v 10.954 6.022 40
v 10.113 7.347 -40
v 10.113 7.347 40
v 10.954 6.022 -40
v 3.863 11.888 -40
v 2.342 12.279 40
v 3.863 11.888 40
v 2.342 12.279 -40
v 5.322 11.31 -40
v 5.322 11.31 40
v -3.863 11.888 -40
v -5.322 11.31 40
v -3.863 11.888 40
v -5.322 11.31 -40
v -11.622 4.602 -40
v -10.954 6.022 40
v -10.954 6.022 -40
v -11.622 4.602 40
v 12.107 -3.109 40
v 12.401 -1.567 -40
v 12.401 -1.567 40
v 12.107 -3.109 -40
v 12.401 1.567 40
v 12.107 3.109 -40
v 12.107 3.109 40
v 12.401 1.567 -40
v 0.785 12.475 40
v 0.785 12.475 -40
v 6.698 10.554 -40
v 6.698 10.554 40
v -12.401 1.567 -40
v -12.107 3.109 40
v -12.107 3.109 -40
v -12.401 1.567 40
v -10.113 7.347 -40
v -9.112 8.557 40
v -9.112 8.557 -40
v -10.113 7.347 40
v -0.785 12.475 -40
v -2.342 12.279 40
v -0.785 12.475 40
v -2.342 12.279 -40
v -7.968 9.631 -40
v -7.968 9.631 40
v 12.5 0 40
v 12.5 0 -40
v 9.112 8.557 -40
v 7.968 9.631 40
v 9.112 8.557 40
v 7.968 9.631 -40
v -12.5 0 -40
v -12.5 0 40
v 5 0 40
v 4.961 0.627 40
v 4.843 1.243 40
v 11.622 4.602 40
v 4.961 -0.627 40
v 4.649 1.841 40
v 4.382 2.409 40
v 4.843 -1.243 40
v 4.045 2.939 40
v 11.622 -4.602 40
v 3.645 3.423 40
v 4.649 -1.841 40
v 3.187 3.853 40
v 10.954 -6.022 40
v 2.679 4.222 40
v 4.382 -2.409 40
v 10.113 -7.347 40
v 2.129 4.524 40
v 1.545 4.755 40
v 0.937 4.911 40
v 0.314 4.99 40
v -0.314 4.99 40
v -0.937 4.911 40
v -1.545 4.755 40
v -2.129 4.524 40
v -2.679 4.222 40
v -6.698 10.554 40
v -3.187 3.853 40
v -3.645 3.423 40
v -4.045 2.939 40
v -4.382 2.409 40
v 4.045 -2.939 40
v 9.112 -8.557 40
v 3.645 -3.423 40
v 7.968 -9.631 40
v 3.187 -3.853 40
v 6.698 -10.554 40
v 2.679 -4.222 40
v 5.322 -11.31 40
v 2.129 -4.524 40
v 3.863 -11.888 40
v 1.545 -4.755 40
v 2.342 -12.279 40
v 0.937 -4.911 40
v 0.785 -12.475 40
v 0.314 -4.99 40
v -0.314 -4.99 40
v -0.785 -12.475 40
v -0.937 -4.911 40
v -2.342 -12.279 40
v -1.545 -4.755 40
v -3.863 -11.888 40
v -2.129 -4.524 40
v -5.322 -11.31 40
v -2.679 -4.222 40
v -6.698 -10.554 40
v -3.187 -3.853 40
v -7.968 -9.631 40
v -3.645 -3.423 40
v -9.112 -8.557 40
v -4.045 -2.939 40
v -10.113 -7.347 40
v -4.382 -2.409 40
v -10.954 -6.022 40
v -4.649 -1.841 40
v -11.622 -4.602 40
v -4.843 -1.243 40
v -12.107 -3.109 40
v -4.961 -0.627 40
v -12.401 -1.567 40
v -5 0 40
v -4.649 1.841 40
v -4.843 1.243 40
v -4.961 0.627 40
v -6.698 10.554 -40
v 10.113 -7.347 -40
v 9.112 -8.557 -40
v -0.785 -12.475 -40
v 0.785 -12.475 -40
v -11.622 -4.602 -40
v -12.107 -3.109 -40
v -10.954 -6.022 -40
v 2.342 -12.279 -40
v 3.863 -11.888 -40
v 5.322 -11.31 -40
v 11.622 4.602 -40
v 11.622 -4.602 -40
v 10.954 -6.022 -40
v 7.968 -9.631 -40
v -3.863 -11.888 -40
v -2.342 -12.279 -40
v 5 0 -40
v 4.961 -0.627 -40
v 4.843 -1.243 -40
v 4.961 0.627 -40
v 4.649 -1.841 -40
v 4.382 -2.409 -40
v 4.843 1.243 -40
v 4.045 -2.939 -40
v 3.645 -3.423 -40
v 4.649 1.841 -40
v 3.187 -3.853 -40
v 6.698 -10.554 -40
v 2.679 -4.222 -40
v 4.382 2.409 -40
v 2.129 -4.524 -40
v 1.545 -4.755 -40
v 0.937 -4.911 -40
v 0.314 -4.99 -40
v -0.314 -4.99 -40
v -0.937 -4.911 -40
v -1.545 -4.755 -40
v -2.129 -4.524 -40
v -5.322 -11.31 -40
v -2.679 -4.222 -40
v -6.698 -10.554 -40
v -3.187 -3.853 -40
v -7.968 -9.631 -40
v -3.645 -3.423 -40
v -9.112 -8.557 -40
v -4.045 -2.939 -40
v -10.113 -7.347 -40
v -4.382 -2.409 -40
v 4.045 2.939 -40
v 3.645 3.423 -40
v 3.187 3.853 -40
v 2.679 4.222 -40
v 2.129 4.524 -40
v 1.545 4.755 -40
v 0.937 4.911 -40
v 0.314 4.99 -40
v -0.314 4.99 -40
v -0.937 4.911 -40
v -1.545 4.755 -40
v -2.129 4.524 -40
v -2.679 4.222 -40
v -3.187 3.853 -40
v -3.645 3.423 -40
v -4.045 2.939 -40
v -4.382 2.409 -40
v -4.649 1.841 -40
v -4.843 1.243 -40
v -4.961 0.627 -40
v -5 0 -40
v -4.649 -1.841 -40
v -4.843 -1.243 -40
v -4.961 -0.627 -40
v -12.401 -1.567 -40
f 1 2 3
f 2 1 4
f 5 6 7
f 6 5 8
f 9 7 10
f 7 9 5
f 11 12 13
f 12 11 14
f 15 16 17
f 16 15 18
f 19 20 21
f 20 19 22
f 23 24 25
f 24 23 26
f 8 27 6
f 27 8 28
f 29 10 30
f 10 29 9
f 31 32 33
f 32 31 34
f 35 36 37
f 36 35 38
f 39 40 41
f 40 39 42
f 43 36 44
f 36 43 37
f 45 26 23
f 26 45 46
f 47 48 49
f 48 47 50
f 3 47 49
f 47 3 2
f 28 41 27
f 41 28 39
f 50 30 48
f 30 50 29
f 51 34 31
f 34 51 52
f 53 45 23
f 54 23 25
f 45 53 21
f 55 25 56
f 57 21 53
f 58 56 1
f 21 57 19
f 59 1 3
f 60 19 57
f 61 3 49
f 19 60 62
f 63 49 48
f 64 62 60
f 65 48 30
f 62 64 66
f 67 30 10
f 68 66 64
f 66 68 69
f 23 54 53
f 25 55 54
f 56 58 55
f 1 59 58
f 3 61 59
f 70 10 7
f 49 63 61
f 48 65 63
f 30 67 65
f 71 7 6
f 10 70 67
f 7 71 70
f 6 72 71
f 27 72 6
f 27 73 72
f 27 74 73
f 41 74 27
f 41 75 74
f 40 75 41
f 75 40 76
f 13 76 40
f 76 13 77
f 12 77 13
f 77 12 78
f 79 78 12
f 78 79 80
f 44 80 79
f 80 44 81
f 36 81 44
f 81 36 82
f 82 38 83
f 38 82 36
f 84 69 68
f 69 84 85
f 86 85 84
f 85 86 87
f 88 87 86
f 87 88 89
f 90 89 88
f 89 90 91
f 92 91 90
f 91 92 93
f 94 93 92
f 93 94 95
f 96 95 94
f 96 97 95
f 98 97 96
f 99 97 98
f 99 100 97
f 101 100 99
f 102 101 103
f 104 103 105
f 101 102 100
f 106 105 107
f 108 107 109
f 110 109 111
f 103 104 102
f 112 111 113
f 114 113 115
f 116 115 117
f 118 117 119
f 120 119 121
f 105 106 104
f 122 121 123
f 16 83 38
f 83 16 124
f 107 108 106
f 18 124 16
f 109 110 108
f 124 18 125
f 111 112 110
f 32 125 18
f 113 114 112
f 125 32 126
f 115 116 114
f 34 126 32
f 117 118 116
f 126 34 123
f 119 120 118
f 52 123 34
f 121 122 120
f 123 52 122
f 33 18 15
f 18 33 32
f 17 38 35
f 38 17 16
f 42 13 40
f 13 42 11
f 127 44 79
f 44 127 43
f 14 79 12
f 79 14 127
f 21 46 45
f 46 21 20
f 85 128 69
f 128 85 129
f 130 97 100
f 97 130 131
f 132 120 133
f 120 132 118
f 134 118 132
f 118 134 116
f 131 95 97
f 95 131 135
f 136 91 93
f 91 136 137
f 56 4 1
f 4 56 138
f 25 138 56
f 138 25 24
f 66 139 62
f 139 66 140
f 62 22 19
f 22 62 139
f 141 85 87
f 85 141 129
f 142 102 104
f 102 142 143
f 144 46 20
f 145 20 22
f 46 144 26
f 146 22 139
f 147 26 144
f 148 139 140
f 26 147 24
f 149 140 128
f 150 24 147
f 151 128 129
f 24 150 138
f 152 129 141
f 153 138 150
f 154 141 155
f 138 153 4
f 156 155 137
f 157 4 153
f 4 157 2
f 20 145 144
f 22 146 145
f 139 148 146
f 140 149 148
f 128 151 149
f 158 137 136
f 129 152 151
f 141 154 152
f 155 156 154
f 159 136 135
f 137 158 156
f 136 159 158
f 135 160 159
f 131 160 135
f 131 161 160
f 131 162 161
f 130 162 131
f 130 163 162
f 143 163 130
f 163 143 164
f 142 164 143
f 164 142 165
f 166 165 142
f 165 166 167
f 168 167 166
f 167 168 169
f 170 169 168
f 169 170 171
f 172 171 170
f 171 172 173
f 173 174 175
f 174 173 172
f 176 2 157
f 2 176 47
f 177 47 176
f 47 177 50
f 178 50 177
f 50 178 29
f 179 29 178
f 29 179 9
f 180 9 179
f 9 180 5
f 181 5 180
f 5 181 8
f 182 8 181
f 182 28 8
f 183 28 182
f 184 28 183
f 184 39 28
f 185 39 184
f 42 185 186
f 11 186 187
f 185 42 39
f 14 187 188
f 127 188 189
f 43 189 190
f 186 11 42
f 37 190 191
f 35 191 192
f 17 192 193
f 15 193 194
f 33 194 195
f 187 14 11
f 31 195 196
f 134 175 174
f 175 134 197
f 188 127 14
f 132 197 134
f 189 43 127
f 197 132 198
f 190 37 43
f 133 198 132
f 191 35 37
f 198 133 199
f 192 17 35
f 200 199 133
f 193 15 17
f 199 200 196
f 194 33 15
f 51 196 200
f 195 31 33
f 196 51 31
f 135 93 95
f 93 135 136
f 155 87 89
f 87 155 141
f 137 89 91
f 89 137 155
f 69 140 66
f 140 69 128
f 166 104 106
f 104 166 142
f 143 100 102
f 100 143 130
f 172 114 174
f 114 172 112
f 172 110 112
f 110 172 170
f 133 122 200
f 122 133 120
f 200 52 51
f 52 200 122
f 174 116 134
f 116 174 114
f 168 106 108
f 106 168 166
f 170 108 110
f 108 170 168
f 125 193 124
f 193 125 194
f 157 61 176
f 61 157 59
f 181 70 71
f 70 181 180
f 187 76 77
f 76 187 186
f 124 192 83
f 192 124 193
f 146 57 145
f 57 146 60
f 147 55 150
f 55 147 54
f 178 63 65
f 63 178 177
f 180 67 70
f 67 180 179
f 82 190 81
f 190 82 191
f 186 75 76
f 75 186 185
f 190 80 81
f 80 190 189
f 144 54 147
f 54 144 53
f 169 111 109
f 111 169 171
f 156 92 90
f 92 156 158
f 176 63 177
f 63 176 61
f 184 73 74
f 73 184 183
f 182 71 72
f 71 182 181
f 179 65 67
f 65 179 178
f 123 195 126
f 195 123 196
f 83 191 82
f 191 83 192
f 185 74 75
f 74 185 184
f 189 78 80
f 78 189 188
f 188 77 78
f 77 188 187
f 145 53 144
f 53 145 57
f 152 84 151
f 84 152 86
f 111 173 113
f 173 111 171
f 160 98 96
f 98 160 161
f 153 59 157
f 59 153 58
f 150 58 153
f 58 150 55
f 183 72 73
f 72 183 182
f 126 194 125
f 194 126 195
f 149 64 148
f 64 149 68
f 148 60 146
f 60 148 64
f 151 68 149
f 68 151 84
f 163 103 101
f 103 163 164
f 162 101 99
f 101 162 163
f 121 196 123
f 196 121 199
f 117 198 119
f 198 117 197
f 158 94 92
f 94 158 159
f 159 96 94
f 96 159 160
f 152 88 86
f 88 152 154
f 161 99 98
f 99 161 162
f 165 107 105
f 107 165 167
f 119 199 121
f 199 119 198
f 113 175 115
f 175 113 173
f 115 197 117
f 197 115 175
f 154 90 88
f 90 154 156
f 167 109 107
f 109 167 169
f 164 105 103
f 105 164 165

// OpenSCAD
$fn = 50;


difference() {
	union() {
		translate(v = [0, 0, -40.0000000000]) {
			cylinder(h = 80, r = 12.5000000000);
		}
	}
	union() {
		translate(v = [0, 0, -100.0000000000]) {
			cylinder(h = 200, r = 5);
		}
	}
}
